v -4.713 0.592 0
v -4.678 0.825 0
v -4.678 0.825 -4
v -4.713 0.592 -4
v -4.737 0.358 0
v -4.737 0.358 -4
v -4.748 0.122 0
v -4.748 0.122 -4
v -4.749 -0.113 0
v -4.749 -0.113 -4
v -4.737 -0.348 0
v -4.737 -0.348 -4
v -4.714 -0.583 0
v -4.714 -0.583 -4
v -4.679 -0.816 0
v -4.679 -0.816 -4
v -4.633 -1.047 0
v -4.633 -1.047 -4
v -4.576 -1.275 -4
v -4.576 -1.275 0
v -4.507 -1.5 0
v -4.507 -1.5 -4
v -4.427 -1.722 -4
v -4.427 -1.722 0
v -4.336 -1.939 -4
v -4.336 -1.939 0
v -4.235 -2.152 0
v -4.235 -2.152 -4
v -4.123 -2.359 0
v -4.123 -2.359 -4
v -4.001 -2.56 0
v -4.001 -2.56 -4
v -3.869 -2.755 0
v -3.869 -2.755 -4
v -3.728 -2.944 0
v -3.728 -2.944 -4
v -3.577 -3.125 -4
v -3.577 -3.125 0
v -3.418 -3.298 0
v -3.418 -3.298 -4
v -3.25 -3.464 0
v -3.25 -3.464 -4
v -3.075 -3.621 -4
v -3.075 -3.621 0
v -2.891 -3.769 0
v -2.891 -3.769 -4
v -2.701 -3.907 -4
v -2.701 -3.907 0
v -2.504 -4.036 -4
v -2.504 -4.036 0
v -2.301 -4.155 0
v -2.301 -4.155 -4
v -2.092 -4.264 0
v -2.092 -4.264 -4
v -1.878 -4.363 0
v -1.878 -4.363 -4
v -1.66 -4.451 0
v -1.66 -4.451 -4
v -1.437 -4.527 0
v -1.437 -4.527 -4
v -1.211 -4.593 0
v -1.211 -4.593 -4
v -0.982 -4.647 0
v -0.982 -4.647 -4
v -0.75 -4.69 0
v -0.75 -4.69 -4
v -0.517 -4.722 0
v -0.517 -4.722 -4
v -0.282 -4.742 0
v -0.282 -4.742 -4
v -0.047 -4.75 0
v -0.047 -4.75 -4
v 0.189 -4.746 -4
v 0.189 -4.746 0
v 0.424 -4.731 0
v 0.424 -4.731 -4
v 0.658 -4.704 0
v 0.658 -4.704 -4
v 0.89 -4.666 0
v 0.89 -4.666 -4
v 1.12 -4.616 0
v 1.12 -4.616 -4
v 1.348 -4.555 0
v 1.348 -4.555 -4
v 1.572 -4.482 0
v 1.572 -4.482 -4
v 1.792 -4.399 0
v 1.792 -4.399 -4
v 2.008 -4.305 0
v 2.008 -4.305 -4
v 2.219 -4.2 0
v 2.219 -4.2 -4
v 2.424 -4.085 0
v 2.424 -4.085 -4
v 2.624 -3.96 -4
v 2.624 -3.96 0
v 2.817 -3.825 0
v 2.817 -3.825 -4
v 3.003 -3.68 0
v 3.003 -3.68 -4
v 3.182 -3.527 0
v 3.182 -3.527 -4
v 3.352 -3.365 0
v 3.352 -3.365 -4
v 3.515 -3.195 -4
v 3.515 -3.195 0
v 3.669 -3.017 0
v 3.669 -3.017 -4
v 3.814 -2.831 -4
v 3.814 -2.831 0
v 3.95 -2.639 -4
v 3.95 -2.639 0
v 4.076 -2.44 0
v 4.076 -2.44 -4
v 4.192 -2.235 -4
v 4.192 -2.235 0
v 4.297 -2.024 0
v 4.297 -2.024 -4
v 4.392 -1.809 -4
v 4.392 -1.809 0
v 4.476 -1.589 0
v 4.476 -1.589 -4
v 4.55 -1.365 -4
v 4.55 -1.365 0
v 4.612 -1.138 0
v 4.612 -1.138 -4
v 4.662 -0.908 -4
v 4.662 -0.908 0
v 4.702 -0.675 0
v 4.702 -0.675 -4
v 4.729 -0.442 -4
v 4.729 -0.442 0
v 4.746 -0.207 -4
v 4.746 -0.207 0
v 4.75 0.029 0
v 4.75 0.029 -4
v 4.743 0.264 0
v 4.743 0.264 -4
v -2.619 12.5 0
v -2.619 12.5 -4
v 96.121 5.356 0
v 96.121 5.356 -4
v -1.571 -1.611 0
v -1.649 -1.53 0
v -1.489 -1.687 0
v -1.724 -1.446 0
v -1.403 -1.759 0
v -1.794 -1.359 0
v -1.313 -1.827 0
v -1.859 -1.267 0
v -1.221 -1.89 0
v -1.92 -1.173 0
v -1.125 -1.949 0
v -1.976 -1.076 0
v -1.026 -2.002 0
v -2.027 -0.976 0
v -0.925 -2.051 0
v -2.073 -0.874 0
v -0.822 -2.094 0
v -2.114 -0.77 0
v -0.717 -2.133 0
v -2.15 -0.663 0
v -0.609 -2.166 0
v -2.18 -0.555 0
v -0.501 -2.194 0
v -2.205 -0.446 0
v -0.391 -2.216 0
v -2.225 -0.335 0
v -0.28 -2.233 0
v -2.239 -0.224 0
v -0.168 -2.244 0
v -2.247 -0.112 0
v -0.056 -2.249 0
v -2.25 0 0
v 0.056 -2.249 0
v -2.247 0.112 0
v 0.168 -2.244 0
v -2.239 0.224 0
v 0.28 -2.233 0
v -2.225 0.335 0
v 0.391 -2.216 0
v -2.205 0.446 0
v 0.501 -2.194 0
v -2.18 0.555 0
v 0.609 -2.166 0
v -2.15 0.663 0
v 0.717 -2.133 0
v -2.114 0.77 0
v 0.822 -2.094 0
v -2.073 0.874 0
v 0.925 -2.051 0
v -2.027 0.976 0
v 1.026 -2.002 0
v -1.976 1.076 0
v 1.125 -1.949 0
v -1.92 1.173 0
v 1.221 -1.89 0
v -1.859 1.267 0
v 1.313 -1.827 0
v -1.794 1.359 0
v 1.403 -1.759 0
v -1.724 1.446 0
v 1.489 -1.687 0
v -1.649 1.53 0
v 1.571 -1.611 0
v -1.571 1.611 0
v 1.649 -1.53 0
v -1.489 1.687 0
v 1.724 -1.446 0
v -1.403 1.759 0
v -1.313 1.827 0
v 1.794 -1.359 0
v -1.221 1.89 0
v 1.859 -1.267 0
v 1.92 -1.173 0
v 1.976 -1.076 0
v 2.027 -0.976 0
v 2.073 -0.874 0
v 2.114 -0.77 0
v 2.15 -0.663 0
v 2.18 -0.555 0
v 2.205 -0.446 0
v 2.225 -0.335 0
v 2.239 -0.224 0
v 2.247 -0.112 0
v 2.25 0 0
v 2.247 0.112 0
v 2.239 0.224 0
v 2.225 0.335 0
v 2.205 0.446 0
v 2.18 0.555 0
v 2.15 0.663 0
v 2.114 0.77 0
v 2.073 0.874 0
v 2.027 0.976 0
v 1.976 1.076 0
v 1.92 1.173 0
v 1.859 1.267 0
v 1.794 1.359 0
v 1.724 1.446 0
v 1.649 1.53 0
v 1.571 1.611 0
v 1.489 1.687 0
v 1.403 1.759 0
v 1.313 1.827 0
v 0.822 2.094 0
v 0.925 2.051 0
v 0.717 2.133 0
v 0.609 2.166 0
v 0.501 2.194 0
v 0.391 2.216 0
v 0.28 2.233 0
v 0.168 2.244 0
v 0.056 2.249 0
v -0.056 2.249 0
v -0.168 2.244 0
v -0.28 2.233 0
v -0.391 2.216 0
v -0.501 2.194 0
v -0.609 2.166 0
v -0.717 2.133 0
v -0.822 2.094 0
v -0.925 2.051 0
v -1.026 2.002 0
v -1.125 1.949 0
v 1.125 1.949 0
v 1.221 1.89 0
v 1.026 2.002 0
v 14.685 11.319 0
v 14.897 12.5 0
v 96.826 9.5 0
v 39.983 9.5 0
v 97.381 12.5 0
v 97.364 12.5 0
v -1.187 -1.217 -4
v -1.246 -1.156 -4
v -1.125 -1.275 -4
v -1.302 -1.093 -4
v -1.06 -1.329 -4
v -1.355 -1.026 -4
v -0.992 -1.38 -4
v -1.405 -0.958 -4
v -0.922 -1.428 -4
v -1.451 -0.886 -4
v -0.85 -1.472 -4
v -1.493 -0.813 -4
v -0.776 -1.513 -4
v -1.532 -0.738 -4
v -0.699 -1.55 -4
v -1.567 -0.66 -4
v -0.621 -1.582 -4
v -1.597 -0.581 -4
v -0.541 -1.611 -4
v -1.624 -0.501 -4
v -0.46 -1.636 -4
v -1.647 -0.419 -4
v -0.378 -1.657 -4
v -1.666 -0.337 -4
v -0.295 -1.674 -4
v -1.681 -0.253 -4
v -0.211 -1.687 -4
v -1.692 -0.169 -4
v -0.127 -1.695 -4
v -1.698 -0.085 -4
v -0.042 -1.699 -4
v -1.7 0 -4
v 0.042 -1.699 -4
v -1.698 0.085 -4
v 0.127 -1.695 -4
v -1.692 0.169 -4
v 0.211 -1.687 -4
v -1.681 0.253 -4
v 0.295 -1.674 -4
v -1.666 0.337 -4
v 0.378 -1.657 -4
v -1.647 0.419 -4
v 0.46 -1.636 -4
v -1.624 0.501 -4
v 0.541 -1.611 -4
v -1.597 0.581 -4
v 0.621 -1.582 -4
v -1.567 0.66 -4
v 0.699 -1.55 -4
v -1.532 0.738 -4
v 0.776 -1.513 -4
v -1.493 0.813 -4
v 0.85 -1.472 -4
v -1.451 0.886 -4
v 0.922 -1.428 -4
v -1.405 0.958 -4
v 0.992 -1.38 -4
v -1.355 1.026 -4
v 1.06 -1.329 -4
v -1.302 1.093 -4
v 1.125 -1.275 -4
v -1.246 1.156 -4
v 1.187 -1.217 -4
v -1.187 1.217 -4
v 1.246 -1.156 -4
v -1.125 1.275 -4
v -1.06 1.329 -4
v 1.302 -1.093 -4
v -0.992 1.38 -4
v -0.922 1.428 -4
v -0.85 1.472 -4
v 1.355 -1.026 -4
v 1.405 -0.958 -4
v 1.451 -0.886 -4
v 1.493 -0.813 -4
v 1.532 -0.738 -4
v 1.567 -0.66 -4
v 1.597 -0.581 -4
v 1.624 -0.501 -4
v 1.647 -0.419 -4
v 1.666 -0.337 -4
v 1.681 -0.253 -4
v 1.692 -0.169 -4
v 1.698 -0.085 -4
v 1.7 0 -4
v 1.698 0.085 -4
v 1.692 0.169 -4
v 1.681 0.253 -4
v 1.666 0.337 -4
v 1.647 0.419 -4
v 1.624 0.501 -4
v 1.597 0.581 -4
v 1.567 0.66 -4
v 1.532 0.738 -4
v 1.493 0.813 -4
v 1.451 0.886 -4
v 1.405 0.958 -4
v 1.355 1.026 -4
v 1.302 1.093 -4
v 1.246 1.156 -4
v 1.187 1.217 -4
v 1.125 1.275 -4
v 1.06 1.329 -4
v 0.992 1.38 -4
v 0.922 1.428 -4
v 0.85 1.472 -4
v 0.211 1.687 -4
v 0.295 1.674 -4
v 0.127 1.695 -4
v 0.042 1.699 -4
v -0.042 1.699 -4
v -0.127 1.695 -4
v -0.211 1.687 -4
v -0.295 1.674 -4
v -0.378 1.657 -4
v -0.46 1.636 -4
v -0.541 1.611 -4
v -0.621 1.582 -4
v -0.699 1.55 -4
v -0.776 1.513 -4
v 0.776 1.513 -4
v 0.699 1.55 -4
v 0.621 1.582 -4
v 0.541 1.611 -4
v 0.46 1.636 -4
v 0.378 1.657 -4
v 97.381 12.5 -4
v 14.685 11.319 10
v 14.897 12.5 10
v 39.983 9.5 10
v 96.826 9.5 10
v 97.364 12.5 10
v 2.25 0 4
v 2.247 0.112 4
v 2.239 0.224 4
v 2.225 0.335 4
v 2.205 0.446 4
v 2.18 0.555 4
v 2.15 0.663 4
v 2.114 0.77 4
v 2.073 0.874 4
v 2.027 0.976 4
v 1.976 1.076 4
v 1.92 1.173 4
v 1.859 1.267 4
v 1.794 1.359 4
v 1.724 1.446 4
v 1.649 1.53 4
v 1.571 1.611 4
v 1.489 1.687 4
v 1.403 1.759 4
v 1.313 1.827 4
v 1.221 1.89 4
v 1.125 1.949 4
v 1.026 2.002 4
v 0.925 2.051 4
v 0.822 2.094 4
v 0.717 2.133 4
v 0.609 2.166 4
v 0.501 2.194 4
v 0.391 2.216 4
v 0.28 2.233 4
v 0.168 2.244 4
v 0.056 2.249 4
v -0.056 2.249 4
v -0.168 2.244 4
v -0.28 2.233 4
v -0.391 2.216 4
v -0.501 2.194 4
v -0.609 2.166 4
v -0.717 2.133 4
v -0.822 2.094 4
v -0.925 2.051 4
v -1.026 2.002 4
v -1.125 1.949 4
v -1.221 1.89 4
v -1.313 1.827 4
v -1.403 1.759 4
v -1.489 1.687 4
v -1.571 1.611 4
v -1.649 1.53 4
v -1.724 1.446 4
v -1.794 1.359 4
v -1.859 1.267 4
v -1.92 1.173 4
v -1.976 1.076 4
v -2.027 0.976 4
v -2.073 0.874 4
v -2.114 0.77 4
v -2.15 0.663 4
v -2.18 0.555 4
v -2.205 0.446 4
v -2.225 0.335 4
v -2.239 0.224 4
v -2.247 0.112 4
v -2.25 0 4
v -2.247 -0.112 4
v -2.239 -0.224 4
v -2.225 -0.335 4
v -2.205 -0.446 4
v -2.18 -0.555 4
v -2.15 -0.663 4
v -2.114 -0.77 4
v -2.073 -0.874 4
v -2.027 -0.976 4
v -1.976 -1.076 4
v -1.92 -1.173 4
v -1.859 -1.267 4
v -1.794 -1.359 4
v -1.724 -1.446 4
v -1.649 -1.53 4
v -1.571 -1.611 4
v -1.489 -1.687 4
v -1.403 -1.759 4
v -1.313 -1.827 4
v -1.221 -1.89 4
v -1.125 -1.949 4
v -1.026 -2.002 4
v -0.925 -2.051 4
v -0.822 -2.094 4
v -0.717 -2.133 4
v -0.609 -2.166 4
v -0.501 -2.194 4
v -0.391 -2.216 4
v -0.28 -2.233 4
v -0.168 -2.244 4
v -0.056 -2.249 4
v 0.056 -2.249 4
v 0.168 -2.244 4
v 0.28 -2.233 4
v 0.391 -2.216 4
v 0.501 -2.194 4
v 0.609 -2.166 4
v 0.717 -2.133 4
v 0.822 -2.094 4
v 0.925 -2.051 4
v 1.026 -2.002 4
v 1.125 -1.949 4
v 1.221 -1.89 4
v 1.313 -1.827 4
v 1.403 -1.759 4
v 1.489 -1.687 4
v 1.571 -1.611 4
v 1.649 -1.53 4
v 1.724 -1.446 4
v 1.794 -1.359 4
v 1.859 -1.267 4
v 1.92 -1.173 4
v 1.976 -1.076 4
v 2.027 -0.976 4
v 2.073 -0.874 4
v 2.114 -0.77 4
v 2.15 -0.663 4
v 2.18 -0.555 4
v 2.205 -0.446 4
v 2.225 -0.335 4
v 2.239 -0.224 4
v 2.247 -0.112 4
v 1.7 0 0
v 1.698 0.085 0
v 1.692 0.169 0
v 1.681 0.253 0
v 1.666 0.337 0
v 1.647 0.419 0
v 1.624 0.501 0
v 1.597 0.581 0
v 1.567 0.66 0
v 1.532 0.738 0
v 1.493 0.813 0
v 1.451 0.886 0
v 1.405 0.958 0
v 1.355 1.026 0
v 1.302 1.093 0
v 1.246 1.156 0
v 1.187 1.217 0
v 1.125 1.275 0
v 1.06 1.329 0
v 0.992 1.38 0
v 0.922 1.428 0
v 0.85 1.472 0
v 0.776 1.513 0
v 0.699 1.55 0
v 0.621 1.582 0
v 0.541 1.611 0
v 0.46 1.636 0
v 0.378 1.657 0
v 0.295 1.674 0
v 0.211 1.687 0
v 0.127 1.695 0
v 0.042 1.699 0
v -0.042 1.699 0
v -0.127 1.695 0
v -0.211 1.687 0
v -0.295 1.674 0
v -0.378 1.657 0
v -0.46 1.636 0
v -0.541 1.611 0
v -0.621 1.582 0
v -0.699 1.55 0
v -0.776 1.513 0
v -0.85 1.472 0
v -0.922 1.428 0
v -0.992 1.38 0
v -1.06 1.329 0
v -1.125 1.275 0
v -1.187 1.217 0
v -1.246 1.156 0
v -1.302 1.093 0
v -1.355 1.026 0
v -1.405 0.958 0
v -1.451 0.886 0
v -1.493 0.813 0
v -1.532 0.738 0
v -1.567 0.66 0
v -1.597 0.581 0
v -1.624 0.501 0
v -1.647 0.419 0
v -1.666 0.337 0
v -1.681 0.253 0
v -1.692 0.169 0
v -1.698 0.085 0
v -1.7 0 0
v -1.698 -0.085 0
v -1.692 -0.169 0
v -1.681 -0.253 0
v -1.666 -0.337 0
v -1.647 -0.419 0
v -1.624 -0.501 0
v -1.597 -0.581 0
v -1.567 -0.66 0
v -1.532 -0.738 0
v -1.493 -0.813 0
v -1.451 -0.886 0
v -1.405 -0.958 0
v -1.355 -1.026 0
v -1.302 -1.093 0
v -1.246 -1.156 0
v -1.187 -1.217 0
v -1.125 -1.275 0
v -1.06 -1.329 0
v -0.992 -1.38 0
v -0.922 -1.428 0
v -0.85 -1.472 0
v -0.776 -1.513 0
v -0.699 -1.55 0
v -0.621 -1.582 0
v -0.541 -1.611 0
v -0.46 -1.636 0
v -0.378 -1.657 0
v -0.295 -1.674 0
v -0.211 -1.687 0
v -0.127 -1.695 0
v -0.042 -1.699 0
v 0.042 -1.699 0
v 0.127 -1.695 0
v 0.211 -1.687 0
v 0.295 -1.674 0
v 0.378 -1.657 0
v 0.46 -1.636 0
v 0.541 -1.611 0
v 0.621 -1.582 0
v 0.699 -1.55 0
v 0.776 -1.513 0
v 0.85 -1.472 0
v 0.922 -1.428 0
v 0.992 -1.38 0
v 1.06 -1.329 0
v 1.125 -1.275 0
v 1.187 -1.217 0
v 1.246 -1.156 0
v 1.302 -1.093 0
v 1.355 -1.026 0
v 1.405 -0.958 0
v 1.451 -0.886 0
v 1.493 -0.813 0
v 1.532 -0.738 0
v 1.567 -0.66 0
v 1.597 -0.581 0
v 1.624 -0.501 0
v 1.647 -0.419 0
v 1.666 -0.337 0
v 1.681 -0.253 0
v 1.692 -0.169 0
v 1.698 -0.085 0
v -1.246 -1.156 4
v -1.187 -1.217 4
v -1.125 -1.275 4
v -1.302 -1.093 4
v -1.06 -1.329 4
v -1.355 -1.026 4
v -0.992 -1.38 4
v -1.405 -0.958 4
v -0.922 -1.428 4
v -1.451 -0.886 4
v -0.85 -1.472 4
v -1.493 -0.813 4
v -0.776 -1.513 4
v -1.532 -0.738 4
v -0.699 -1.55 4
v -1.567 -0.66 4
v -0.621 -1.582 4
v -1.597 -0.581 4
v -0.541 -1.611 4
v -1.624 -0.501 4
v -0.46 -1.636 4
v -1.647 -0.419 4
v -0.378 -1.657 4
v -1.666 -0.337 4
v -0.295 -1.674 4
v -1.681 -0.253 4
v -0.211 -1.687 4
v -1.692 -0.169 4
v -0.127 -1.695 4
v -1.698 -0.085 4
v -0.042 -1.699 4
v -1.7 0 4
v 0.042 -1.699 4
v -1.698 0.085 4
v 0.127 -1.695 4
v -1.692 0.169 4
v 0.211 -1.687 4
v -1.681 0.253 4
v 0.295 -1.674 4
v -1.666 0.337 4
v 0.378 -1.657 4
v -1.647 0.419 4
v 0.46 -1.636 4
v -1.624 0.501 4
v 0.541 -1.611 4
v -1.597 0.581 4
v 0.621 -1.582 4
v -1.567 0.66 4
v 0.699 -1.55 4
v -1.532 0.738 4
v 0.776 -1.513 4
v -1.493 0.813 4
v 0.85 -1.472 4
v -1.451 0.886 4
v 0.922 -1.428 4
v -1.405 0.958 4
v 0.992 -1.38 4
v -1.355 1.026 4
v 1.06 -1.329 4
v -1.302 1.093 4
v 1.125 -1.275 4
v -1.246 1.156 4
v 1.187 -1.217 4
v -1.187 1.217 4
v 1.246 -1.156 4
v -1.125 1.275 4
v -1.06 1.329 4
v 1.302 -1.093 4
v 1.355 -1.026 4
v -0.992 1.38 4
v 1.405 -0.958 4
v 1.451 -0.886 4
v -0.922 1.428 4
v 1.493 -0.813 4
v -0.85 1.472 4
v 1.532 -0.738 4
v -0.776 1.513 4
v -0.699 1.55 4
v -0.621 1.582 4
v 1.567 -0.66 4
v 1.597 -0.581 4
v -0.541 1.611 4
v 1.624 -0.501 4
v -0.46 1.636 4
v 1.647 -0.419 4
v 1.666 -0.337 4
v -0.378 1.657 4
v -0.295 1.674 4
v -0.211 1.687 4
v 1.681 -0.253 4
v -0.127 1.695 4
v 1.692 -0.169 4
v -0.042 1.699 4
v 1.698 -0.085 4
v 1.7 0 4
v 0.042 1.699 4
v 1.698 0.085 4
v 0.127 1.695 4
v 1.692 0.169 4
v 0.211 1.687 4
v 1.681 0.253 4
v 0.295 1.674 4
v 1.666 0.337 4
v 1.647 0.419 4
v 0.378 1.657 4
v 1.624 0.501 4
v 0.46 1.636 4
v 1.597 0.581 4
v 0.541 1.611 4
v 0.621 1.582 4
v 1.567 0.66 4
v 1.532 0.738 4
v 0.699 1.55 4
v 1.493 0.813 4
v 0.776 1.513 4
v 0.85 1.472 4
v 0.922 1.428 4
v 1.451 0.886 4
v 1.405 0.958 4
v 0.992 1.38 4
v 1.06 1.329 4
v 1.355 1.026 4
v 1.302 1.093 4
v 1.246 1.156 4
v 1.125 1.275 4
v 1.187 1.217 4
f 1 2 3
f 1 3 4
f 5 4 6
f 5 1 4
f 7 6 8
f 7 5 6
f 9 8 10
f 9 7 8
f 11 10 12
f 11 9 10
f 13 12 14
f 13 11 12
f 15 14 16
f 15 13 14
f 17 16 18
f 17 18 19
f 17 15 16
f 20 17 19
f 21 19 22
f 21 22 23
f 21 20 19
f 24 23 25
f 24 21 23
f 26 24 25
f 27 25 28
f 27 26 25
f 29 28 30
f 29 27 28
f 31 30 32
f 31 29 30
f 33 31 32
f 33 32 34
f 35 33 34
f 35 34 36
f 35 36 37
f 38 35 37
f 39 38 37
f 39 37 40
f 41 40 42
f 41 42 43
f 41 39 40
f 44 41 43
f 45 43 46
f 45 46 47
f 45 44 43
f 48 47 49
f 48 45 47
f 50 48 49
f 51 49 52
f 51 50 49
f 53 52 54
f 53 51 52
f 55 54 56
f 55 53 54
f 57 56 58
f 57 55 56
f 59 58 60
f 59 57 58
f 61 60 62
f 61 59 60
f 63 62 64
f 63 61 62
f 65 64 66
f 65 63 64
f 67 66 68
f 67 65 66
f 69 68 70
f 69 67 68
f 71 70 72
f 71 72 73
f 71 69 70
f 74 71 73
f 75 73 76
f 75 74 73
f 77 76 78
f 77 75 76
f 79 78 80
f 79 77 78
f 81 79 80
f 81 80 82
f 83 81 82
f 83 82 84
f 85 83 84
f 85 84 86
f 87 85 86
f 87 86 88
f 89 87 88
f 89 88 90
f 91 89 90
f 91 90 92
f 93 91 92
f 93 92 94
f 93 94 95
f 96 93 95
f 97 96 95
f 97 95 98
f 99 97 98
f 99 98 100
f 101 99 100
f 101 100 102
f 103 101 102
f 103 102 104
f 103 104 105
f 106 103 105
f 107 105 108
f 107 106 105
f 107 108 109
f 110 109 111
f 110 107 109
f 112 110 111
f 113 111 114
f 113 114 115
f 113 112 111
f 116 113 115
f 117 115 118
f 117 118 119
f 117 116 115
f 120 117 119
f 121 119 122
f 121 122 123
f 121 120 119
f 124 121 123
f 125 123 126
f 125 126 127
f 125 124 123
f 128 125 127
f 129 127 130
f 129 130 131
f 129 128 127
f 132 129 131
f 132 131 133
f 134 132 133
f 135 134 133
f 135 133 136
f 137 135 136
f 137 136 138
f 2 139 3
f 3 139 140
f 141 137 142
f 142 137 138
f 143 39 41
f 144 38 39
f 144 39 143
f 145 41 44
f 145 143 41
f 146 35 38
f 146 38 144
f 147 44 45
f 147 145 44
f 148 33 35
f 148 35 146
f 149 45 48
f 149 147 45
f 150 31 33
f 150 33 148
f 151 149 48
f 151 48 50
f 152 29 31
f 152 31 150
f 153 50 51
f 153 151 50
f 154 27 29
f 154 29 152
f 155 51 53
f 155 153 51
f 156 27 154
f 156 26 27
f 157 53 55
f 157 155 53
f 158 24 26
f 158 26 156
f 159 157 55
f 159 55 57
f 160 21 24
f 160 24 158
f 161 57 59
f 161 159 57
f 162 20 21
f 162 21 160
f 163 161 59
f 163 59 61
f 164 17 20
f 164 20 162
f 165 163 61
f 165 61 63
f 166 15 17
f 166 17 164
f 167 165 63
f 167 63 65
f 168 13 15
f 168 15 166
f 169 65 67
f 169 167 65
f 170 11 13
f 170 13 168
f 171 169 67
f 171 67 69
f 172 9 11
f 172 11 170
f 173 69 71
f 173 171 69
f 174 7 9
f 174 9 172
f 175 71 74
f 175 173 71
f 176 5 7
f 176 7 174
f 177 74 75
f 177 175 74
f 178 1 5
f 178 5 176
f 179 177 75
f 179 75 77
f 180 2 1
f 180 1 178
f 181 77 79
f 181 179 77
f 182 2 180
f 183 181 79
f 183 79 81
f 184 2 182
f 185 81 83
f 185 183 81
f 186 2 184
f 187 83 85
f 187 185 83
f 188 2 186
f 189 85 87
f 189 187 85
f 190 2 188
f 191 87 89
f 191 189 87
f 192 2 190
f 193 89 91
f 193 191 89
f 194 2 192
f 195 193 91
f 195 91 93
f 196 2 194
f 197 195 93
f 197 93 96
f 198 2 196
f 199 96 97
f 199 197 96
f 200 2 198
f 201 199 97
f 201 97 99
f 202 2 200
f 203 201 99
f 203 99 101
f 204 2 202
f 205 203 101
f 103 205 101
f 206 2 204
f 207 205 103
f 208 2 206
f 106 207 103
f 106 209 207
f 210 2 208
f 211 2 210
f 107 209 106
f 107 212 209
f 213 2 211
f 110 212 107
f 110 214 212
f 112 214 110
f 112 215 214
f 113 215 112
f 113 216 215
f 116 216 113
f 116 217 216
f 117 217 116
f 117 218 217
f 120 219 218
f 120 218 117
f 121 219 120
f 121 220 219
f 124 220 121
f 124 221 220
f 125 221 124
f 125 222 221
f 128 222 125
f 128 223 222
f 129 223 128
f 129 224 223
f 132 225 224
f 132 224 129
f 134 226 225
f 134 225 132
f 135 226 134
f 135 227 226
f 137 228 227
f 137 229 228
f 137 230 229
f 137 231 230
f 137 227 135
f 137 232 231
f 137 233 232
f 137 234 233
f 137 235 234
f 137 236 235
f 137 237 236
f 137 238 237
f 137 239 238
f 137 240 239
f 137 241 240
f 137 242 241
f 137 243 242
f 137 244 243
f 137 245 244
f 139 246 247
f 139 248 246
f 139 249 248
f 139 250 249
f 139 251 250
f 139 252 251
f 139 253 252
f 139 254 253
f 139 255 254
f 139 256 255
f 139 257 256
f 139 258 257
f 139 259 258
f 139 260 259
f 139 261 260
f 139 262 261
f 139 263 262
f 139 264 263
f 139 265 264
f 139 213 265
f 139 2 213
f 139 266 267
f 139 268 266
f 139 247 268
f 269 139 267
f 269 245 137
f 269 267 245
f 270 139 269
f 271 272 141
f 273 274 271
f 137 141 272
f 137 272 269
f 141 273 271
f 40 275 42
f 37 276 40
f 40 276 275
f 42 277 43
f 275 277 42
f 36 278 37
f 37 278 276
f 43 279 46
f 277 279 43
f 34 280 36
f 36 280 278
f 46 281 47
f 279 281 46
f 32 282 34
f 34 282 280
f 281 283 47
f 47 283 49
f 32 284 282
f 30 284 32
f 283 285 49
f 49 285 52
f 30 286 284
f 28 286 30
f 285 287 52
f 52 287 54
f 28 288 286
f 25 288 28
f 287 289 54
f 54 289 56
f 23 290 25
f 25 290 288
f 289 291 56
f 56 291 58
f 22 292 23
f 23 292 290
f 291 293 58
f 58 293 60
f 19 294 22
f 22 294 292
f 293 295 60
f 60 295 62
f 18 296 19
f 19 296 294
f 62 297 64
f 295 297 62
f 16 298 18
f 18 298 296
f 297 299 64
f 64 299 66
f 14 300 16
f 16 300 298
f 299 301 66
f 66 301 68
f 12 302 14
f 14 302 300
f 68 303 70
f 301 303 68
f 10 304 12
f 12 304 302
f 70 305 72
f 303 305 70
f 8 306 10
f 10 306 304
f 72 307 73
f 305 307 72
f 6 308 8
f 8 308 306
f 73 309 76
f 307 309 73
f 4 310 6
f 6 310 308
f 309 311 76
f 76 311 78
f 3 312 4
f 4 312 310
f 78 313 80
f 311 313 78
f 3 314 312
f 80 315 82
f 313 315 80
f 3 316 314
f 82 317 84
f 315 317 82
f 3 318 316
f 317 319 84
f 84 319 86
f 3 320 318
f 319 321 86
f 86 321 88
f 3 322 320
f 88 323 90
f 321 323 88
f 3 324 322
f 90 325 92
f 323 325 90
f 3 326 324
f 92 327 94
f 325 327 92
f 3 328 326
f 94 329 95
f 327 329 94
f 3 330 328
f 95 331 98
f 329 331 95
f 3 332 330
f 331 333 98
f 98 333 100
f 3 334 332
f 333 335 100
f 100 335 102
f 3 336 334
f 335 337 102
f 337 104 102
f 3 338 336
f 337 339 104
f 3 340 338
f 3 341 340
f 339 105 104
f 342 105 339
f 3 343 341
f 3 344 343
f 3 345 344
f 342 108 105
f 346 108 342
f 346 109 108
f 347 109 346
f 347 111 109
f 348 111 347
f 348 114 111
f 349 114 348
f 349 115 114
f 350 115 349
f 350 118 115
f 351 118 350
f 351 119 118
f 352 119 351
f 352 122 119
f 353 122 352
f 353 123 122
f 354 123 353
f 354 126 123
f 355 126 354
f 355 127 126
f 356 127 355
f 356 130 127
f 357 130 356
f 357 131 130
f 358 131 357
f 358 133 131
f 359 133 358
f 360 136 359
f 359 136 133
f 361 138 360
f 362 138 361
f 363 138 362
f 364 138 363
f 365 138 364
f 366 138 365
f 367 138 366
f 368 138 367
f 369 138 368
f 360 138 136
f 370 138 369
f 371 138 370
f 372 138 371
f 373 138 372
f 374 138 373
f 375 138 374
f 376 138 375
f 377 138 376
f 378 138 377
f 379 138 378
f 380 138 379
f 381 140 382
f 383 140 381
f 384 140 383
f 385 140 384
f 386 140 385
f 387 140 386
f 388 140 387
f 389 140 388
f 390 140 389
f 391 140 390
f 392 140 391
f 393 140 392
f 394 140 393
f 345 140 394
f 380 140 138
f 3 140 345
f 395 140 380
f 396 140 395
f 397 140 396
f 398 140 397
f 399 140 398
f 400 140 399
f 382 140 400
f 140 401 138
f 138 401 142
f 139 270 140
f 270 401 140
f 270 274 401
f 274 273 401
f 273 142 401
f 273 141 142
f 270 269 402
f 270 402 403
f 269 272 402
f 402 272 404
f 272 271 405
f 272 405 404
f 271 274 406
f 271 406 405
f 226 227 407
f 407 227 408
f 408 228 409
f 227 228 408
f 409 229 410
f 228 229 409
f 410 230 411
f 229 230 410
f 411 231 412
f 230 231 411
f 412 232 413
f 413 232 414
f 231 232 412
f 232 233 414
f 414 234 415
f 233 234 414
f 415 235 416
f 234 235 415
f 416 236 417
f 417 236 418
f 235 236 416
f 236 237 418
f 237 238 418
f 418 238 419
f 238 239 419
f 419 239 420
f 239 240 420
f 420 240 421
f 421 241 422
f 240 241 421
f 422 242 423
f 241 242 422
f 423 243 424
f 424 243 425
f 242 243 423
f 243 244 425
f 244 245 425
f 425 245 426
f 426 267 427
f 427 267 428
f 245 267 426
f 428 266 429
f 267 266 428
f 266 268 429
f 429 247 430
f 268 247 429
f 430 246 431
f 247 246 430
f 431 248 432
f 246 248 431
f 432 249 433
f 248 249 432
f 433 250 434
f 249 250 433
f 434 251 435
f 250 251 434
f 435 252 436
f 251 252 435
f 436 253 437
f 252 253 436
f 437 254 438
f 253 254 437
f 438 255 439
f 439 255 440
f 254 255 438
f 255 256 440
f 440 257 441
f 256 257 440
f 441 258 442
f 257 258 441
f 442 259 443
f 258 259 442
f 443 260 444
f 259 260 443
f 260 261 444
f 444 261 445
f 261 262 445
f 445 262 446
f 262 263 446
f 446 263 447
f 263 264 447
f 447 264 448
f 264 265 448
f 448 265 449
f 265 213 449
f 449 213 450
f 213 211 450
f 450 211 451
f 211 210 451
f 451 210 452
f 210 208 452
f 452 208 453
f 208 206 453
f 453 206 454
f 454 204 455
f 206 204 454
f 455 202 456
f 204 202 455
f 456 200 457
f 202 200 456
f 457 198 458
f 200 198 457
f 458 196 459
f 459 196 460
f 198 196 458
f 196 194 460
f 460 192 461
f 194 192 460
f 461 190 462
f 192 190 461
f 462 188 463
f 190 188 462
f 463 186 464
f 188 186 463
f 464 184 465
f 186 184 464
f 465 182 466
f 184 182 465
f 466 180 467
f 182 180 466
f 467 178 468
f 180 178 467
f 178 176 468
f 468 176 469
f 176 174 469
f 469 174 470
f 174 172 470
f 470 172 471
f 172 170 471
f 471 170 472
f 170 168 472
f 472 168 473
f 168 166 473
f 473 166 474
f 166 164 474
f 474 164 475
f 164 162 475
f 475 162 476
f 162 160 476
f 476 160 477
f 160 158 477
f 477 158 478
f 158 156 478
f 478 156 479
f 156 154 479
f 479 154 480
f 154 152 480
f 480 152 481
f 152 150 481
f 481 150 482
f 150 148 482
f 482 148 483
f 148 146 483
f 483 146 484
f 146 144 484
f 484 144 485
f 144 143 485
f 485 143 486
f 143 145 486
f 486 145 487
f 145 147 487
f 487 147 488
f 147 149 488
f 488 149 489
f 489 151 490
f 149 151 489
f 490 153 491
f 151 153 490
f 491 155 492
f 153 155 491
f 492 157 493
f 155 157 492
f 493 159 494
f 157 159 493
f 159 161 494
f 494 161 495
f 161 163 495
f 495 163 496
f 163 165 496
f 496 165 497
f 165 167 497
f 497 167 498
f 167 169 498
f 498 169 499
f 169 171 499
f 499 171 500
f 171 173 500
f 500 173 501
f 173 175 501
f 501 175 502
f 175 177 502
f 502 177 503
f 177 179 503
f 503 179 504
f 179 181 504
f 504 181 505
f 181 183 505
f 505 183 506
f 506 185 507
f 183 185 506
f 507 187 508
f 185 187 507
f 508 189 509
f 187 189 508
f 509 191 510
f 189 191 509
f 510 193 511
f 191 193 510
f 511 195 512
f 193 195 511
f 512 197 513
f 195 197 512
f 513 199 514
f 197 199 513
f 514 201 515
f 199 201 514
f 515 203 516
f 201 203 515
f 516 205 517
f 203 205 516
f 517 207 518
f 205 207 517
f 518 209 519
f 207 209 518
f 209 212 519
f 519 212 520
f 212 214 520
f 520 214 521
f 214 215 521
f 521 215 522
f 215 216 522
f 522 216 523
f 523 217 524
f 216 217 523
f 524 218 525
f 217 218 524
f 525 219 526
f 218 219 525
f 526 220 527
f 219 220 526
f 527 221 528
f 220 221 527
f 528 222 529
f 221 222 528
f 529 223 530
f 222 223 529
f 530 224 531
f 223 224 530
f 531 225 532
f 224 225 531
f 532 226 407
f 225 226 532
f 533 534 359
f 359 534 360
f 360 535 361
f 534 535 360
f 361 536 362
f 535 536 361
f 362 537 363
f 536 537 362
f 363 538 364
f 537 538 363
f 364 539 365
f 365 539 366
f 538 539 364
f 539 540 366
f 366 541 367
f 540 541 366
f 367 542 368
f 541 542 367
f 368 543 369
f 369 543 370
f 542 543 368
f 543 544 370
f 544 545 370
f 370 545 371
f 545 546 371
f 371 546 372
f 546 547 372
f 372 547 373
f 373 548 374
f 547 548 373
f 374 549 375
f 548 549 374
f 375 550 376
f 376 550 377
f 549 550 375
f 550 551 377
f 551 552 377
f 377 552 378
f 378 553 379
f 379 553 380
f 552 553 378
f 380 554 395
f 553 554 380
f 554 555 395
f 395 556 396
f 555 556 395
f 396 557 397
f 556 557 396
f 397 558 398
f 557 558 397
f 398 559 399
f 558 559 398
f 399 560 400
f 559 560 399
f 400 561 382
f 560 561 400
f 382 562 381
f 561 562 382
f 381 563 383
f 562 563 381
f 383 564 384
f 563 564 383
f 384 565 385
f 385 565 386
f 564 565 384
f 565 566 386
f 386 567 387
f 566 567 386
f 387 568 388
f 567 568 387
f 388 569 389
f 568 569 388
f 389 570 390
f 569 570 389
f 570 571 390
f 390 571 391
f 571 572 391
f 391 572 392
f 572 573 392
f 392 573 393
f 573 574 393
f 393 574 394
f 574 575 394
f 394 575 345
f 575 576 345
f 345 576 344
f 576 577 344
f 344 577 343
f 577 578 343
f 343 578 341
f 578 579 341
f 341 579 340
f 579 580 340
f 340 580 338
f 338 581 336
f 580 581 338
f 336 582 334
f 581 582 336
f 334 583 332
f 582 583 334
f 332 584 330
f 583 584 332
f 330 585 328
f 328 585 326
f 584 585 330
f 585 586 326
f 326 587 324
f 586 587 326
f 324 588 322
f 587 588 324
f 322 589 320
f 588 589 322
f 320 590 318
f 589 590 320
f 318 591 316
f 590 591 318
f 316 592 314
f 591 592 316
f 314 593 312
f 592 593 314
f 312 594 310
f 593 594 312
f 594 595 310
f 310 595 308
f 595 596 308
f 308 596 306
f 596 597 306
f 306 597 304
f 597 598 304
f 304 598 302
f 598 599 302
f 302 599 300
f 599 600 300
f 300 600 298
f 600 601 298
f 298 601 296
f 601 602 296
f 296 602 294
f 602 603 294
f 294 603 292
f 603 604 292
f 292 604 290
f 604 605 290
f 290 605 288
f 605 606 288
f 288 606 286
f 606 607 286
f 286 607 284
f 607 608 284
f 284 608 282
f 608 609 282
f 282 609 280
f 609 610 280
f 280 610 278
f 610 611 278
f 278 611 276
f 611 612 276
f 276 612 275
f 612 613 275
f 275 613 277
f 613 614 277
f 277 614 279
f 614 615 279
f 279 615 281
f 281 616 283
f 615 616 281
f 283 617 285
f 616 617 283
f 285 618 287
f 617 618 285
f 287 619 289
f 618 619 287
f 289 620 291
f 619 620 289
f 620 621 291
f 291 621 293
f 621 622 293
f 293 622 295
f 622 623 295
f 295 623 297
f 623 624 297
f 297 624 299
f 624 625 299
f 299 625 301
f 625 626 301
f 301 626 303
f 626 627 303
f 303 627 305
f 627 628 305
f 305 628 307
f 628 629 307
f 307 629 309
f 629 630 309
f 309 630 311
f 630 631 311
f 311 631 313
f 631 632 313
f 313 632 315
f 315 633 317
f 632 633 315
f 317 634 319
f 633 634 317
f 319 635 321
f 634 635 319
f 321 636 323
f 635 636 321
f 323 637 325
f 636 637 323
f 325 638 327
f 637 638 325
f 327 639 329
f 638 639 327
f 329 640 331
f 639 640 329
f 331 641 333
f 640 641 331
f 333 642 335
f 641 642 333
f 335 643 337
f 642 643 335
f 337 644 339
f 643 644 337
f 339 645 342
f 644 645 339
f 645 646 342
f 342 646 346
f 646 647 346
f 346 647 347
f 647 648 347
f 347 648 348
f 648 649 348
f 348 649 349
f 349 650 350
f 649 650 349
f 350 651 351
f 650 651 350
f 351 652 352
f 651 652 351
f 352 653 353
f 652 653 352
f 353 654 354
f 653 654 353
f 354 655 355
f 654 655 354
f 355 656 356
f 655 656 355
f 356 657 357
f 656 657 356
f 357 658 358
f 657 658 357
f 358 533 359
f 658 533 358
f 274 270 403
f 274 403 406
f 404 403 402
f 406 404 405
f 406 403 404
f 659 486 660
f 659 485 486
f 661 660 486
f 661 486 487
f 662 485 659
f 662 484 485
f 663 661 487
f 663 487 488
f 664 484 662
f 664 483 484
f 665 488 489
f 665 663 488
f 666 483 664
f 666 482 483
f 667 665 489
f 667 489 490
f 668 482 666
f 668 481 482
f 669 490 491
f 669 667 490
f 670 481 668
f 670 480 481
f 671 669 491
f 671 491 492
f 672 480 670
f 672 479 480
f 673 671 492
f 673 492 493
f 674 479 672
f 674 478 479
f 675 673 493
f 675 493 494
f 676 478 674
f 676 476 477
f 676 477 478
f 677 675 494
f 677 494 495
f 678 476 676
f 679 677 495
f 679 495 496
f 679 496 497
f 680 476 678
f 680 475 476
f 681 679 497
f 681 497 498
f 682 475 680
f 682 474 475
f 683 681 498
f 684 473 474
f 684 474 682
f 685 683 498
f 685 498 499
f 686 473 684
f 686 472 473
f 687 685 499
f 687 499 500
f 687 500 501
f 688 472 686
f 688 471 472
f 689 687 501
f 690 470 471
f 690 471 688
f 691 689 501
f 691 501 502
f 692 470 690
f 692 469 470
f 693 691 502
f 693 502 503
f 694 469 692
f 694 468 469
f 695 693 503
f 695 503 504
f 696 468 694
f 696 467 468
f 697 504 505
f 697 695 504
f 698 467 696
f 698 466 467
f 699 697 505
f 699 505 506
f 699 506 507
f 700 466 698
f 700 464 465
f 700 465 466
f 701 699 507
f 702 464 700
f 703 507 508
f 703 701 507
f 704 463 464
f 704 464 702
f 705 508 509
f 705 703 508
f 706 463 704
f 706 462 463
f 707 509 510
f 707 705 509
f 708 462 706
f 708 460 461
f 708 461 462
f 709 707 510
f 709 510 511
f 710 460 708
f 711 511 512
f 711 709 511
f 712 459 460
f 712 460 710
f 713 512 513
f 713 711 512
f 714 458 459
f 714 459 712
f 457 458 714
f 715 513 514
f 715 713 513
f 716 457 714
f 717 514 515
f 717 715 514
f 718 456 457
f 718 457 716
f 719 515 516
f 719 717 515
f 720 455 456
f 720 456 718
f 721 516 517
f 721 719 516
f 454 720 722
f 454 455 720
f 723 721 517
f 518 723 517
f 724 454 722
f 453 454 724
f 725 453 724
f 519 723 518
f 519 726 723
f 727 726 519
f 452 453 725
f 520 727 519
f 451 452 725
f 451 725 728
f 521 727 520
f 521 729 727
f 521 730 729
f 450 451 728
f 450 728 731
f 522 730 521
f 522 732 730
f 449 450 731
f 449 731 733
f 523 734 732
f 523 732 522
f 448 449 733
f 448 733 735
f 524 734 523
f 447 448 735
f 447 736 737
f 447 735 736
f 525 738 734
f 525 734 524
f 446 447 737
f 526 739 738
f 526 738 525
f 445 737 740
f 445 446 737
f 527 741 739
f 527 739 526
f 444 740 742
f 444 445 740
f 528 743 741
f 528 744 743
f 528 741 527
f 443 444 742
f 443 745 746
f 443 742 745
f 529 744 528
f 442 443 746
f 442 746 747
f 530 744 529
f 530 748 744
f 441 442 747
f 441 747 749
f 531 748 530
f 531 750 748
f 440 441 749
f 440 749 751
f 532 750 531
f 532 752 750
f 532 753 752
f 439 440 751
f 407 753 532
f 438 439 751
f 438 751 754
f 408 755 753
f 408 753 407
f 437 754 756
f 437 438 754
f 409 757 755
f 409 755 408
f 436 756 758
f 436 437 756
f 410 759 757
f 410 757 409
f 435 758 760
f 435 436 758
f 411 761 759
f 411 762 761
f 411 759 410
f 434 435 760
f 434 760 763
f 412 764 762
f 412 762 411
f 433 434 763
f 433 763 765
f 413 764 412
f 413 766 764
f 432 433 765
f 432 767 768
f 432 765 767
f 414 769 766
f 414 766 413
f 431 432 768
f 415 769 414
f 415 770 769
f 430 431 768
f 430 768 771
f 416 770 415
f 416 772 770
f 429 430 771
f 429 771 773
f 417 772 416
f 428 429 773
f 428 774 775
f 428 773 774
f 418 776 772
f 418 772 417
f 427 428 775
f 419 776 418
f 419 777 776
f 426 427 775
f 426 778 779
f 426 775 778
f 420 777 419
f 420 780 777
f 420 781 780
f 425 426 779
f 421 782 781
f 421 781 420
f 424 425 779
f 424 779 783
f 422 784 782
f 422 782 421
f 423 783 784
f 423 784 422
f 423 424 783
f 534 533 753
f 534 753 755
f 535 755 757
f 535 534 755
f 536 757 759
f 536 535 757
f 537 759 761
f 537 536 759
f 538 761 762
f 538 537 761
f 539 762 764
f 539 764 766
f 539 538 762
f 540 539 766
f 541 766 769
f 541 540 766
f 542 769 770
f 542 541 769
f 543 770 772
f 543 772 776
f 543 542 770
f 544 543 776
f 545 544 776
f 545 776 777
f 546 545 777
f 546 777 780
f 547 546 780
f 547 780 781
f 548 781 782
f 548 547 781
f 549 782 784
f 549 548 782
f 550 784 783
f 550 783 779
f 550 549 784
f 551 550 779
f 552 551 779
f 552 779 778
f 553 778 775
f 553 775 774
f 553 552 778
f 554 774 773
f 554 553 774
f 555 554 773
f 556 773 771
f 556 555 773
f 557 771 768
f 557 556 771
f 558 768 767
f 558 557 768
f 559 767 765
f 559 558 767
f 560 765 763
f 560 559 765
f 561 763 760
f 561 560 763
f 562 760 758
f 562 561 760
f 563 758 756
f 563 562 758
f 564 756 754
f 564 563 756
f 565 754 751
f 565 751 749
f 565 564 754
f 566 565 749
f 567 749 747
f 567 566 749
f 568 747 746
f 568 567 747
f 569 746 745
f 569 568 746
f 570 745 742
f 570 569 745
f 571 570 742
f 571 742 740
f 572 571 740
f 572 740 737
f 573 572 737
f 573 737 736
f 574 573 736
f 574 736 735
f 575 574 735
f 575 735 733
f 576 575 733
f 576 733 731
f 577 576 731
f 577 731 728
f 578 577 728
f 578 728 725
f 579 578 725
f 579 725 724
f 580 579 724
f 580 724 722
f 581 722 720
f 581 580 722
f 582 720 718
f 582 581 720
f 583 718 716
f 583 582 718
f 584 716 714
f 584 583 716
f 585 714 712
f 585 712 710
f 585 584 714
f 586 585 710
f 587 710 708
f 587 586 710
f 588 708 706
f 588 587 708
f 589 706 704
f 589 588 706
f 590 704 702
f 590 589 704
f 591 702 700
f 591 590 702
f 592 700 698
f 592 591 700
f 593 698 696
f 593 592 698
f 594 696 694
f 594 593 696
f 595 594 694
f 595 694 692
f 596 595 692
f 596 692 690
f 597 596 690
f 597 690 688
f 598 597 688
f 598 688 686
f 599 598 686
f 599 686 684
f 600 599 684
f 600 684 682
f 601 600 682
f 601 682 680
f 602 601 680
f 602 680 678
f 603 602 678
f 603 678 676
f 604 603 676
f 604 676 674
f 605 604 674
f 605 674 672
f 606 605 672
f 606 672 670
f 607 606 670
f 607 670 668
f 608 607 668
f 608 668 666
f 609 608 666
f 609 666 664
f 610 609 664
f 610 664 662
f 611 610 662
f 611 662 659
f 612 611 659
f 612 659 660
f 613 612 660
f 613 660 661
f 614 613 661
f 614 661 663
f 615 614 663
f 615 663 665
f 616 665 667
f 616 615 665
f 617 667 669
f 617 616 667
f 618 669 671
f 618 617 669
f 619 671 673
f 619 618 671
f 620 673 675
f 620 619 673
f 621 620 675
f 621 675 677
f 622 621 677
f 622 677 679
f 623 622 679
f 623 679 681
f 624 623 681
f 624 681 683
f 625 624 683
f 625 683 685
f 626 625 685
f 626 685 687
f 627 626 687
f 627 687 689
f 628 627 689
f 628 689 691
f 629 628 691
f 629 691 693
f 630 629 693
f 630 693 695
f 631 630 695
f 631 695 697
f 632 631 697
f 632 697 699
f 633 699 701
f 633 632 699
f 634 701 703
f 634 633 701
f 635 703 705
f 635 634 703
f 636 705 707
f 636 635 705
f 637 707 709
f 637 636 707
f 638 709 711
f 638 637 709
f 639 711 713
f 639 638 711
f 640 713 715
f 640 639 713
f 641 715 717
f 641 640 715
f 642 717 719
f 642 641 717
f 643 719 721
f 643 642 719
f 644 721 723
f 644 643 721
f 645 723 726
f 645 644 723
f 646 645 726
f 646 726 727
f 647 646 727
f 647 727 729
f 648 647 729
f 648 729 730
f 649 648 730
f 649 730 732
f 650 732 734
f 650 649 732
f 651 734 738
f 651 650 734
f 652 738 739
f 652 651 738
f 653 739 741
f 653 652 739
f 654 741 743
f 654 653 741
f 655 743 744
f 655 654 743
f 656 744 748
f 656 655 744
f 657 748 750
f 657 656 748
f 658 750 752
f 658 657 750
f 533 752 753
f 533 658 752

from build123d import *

# Parameters (mm, degrees)
SKETCH001_R  = 1.7
PAD001_DEPTH = 4
PAD003_DEPTH = 10
SKETCH_R     = 2.25
SKETCH_R_2   = 1.7
PAD_DEPTH    = 4


with BuildPart() as part:
    # Sketch001 → Pad001 (new body)
    with BuildSketch(Plane.XY):
        with BuildLine():
            ThreePointArc((-4.677837, 0.824829), (-0.282136, -4.741614), (4.742642, 0.26429))
            Line((96.121215, 5.356476), (4.742642, 0.26429))
            Line((97.380811, 12.5), (96.121215, 5.356476))
            Line((-2.619189, 12.5), (97.380811, 12.5))
            Line((-4.677837, 0.824829), (-2.619189, 12.5))
        make_face()
        Circle(SKETCH001_R, mode=Mode.SUBTRACT)
    extrude(amount=-PAD001_DEPTH)

    # Sketch004 → Pad003 (join)
    with BuildSketch(Plane.XY):
        Polygon((14.896796, 12.5), (97.363709, 12.5), (96.825632, 9.5), (39.982536, 9.5), (14.684946, 11.318848), align=None)
    extrude(amount=PAD003_DEPTH)

    # Sketch → Pad (join)
    with BuildSketch(Plane.XY):
        Circle(SKETCH_R)
        Circle(SKETCH_R_2, mode=Mode.SUBTRACT)
    extrude(amount=PAD_DEPTH)


solid = part.part
